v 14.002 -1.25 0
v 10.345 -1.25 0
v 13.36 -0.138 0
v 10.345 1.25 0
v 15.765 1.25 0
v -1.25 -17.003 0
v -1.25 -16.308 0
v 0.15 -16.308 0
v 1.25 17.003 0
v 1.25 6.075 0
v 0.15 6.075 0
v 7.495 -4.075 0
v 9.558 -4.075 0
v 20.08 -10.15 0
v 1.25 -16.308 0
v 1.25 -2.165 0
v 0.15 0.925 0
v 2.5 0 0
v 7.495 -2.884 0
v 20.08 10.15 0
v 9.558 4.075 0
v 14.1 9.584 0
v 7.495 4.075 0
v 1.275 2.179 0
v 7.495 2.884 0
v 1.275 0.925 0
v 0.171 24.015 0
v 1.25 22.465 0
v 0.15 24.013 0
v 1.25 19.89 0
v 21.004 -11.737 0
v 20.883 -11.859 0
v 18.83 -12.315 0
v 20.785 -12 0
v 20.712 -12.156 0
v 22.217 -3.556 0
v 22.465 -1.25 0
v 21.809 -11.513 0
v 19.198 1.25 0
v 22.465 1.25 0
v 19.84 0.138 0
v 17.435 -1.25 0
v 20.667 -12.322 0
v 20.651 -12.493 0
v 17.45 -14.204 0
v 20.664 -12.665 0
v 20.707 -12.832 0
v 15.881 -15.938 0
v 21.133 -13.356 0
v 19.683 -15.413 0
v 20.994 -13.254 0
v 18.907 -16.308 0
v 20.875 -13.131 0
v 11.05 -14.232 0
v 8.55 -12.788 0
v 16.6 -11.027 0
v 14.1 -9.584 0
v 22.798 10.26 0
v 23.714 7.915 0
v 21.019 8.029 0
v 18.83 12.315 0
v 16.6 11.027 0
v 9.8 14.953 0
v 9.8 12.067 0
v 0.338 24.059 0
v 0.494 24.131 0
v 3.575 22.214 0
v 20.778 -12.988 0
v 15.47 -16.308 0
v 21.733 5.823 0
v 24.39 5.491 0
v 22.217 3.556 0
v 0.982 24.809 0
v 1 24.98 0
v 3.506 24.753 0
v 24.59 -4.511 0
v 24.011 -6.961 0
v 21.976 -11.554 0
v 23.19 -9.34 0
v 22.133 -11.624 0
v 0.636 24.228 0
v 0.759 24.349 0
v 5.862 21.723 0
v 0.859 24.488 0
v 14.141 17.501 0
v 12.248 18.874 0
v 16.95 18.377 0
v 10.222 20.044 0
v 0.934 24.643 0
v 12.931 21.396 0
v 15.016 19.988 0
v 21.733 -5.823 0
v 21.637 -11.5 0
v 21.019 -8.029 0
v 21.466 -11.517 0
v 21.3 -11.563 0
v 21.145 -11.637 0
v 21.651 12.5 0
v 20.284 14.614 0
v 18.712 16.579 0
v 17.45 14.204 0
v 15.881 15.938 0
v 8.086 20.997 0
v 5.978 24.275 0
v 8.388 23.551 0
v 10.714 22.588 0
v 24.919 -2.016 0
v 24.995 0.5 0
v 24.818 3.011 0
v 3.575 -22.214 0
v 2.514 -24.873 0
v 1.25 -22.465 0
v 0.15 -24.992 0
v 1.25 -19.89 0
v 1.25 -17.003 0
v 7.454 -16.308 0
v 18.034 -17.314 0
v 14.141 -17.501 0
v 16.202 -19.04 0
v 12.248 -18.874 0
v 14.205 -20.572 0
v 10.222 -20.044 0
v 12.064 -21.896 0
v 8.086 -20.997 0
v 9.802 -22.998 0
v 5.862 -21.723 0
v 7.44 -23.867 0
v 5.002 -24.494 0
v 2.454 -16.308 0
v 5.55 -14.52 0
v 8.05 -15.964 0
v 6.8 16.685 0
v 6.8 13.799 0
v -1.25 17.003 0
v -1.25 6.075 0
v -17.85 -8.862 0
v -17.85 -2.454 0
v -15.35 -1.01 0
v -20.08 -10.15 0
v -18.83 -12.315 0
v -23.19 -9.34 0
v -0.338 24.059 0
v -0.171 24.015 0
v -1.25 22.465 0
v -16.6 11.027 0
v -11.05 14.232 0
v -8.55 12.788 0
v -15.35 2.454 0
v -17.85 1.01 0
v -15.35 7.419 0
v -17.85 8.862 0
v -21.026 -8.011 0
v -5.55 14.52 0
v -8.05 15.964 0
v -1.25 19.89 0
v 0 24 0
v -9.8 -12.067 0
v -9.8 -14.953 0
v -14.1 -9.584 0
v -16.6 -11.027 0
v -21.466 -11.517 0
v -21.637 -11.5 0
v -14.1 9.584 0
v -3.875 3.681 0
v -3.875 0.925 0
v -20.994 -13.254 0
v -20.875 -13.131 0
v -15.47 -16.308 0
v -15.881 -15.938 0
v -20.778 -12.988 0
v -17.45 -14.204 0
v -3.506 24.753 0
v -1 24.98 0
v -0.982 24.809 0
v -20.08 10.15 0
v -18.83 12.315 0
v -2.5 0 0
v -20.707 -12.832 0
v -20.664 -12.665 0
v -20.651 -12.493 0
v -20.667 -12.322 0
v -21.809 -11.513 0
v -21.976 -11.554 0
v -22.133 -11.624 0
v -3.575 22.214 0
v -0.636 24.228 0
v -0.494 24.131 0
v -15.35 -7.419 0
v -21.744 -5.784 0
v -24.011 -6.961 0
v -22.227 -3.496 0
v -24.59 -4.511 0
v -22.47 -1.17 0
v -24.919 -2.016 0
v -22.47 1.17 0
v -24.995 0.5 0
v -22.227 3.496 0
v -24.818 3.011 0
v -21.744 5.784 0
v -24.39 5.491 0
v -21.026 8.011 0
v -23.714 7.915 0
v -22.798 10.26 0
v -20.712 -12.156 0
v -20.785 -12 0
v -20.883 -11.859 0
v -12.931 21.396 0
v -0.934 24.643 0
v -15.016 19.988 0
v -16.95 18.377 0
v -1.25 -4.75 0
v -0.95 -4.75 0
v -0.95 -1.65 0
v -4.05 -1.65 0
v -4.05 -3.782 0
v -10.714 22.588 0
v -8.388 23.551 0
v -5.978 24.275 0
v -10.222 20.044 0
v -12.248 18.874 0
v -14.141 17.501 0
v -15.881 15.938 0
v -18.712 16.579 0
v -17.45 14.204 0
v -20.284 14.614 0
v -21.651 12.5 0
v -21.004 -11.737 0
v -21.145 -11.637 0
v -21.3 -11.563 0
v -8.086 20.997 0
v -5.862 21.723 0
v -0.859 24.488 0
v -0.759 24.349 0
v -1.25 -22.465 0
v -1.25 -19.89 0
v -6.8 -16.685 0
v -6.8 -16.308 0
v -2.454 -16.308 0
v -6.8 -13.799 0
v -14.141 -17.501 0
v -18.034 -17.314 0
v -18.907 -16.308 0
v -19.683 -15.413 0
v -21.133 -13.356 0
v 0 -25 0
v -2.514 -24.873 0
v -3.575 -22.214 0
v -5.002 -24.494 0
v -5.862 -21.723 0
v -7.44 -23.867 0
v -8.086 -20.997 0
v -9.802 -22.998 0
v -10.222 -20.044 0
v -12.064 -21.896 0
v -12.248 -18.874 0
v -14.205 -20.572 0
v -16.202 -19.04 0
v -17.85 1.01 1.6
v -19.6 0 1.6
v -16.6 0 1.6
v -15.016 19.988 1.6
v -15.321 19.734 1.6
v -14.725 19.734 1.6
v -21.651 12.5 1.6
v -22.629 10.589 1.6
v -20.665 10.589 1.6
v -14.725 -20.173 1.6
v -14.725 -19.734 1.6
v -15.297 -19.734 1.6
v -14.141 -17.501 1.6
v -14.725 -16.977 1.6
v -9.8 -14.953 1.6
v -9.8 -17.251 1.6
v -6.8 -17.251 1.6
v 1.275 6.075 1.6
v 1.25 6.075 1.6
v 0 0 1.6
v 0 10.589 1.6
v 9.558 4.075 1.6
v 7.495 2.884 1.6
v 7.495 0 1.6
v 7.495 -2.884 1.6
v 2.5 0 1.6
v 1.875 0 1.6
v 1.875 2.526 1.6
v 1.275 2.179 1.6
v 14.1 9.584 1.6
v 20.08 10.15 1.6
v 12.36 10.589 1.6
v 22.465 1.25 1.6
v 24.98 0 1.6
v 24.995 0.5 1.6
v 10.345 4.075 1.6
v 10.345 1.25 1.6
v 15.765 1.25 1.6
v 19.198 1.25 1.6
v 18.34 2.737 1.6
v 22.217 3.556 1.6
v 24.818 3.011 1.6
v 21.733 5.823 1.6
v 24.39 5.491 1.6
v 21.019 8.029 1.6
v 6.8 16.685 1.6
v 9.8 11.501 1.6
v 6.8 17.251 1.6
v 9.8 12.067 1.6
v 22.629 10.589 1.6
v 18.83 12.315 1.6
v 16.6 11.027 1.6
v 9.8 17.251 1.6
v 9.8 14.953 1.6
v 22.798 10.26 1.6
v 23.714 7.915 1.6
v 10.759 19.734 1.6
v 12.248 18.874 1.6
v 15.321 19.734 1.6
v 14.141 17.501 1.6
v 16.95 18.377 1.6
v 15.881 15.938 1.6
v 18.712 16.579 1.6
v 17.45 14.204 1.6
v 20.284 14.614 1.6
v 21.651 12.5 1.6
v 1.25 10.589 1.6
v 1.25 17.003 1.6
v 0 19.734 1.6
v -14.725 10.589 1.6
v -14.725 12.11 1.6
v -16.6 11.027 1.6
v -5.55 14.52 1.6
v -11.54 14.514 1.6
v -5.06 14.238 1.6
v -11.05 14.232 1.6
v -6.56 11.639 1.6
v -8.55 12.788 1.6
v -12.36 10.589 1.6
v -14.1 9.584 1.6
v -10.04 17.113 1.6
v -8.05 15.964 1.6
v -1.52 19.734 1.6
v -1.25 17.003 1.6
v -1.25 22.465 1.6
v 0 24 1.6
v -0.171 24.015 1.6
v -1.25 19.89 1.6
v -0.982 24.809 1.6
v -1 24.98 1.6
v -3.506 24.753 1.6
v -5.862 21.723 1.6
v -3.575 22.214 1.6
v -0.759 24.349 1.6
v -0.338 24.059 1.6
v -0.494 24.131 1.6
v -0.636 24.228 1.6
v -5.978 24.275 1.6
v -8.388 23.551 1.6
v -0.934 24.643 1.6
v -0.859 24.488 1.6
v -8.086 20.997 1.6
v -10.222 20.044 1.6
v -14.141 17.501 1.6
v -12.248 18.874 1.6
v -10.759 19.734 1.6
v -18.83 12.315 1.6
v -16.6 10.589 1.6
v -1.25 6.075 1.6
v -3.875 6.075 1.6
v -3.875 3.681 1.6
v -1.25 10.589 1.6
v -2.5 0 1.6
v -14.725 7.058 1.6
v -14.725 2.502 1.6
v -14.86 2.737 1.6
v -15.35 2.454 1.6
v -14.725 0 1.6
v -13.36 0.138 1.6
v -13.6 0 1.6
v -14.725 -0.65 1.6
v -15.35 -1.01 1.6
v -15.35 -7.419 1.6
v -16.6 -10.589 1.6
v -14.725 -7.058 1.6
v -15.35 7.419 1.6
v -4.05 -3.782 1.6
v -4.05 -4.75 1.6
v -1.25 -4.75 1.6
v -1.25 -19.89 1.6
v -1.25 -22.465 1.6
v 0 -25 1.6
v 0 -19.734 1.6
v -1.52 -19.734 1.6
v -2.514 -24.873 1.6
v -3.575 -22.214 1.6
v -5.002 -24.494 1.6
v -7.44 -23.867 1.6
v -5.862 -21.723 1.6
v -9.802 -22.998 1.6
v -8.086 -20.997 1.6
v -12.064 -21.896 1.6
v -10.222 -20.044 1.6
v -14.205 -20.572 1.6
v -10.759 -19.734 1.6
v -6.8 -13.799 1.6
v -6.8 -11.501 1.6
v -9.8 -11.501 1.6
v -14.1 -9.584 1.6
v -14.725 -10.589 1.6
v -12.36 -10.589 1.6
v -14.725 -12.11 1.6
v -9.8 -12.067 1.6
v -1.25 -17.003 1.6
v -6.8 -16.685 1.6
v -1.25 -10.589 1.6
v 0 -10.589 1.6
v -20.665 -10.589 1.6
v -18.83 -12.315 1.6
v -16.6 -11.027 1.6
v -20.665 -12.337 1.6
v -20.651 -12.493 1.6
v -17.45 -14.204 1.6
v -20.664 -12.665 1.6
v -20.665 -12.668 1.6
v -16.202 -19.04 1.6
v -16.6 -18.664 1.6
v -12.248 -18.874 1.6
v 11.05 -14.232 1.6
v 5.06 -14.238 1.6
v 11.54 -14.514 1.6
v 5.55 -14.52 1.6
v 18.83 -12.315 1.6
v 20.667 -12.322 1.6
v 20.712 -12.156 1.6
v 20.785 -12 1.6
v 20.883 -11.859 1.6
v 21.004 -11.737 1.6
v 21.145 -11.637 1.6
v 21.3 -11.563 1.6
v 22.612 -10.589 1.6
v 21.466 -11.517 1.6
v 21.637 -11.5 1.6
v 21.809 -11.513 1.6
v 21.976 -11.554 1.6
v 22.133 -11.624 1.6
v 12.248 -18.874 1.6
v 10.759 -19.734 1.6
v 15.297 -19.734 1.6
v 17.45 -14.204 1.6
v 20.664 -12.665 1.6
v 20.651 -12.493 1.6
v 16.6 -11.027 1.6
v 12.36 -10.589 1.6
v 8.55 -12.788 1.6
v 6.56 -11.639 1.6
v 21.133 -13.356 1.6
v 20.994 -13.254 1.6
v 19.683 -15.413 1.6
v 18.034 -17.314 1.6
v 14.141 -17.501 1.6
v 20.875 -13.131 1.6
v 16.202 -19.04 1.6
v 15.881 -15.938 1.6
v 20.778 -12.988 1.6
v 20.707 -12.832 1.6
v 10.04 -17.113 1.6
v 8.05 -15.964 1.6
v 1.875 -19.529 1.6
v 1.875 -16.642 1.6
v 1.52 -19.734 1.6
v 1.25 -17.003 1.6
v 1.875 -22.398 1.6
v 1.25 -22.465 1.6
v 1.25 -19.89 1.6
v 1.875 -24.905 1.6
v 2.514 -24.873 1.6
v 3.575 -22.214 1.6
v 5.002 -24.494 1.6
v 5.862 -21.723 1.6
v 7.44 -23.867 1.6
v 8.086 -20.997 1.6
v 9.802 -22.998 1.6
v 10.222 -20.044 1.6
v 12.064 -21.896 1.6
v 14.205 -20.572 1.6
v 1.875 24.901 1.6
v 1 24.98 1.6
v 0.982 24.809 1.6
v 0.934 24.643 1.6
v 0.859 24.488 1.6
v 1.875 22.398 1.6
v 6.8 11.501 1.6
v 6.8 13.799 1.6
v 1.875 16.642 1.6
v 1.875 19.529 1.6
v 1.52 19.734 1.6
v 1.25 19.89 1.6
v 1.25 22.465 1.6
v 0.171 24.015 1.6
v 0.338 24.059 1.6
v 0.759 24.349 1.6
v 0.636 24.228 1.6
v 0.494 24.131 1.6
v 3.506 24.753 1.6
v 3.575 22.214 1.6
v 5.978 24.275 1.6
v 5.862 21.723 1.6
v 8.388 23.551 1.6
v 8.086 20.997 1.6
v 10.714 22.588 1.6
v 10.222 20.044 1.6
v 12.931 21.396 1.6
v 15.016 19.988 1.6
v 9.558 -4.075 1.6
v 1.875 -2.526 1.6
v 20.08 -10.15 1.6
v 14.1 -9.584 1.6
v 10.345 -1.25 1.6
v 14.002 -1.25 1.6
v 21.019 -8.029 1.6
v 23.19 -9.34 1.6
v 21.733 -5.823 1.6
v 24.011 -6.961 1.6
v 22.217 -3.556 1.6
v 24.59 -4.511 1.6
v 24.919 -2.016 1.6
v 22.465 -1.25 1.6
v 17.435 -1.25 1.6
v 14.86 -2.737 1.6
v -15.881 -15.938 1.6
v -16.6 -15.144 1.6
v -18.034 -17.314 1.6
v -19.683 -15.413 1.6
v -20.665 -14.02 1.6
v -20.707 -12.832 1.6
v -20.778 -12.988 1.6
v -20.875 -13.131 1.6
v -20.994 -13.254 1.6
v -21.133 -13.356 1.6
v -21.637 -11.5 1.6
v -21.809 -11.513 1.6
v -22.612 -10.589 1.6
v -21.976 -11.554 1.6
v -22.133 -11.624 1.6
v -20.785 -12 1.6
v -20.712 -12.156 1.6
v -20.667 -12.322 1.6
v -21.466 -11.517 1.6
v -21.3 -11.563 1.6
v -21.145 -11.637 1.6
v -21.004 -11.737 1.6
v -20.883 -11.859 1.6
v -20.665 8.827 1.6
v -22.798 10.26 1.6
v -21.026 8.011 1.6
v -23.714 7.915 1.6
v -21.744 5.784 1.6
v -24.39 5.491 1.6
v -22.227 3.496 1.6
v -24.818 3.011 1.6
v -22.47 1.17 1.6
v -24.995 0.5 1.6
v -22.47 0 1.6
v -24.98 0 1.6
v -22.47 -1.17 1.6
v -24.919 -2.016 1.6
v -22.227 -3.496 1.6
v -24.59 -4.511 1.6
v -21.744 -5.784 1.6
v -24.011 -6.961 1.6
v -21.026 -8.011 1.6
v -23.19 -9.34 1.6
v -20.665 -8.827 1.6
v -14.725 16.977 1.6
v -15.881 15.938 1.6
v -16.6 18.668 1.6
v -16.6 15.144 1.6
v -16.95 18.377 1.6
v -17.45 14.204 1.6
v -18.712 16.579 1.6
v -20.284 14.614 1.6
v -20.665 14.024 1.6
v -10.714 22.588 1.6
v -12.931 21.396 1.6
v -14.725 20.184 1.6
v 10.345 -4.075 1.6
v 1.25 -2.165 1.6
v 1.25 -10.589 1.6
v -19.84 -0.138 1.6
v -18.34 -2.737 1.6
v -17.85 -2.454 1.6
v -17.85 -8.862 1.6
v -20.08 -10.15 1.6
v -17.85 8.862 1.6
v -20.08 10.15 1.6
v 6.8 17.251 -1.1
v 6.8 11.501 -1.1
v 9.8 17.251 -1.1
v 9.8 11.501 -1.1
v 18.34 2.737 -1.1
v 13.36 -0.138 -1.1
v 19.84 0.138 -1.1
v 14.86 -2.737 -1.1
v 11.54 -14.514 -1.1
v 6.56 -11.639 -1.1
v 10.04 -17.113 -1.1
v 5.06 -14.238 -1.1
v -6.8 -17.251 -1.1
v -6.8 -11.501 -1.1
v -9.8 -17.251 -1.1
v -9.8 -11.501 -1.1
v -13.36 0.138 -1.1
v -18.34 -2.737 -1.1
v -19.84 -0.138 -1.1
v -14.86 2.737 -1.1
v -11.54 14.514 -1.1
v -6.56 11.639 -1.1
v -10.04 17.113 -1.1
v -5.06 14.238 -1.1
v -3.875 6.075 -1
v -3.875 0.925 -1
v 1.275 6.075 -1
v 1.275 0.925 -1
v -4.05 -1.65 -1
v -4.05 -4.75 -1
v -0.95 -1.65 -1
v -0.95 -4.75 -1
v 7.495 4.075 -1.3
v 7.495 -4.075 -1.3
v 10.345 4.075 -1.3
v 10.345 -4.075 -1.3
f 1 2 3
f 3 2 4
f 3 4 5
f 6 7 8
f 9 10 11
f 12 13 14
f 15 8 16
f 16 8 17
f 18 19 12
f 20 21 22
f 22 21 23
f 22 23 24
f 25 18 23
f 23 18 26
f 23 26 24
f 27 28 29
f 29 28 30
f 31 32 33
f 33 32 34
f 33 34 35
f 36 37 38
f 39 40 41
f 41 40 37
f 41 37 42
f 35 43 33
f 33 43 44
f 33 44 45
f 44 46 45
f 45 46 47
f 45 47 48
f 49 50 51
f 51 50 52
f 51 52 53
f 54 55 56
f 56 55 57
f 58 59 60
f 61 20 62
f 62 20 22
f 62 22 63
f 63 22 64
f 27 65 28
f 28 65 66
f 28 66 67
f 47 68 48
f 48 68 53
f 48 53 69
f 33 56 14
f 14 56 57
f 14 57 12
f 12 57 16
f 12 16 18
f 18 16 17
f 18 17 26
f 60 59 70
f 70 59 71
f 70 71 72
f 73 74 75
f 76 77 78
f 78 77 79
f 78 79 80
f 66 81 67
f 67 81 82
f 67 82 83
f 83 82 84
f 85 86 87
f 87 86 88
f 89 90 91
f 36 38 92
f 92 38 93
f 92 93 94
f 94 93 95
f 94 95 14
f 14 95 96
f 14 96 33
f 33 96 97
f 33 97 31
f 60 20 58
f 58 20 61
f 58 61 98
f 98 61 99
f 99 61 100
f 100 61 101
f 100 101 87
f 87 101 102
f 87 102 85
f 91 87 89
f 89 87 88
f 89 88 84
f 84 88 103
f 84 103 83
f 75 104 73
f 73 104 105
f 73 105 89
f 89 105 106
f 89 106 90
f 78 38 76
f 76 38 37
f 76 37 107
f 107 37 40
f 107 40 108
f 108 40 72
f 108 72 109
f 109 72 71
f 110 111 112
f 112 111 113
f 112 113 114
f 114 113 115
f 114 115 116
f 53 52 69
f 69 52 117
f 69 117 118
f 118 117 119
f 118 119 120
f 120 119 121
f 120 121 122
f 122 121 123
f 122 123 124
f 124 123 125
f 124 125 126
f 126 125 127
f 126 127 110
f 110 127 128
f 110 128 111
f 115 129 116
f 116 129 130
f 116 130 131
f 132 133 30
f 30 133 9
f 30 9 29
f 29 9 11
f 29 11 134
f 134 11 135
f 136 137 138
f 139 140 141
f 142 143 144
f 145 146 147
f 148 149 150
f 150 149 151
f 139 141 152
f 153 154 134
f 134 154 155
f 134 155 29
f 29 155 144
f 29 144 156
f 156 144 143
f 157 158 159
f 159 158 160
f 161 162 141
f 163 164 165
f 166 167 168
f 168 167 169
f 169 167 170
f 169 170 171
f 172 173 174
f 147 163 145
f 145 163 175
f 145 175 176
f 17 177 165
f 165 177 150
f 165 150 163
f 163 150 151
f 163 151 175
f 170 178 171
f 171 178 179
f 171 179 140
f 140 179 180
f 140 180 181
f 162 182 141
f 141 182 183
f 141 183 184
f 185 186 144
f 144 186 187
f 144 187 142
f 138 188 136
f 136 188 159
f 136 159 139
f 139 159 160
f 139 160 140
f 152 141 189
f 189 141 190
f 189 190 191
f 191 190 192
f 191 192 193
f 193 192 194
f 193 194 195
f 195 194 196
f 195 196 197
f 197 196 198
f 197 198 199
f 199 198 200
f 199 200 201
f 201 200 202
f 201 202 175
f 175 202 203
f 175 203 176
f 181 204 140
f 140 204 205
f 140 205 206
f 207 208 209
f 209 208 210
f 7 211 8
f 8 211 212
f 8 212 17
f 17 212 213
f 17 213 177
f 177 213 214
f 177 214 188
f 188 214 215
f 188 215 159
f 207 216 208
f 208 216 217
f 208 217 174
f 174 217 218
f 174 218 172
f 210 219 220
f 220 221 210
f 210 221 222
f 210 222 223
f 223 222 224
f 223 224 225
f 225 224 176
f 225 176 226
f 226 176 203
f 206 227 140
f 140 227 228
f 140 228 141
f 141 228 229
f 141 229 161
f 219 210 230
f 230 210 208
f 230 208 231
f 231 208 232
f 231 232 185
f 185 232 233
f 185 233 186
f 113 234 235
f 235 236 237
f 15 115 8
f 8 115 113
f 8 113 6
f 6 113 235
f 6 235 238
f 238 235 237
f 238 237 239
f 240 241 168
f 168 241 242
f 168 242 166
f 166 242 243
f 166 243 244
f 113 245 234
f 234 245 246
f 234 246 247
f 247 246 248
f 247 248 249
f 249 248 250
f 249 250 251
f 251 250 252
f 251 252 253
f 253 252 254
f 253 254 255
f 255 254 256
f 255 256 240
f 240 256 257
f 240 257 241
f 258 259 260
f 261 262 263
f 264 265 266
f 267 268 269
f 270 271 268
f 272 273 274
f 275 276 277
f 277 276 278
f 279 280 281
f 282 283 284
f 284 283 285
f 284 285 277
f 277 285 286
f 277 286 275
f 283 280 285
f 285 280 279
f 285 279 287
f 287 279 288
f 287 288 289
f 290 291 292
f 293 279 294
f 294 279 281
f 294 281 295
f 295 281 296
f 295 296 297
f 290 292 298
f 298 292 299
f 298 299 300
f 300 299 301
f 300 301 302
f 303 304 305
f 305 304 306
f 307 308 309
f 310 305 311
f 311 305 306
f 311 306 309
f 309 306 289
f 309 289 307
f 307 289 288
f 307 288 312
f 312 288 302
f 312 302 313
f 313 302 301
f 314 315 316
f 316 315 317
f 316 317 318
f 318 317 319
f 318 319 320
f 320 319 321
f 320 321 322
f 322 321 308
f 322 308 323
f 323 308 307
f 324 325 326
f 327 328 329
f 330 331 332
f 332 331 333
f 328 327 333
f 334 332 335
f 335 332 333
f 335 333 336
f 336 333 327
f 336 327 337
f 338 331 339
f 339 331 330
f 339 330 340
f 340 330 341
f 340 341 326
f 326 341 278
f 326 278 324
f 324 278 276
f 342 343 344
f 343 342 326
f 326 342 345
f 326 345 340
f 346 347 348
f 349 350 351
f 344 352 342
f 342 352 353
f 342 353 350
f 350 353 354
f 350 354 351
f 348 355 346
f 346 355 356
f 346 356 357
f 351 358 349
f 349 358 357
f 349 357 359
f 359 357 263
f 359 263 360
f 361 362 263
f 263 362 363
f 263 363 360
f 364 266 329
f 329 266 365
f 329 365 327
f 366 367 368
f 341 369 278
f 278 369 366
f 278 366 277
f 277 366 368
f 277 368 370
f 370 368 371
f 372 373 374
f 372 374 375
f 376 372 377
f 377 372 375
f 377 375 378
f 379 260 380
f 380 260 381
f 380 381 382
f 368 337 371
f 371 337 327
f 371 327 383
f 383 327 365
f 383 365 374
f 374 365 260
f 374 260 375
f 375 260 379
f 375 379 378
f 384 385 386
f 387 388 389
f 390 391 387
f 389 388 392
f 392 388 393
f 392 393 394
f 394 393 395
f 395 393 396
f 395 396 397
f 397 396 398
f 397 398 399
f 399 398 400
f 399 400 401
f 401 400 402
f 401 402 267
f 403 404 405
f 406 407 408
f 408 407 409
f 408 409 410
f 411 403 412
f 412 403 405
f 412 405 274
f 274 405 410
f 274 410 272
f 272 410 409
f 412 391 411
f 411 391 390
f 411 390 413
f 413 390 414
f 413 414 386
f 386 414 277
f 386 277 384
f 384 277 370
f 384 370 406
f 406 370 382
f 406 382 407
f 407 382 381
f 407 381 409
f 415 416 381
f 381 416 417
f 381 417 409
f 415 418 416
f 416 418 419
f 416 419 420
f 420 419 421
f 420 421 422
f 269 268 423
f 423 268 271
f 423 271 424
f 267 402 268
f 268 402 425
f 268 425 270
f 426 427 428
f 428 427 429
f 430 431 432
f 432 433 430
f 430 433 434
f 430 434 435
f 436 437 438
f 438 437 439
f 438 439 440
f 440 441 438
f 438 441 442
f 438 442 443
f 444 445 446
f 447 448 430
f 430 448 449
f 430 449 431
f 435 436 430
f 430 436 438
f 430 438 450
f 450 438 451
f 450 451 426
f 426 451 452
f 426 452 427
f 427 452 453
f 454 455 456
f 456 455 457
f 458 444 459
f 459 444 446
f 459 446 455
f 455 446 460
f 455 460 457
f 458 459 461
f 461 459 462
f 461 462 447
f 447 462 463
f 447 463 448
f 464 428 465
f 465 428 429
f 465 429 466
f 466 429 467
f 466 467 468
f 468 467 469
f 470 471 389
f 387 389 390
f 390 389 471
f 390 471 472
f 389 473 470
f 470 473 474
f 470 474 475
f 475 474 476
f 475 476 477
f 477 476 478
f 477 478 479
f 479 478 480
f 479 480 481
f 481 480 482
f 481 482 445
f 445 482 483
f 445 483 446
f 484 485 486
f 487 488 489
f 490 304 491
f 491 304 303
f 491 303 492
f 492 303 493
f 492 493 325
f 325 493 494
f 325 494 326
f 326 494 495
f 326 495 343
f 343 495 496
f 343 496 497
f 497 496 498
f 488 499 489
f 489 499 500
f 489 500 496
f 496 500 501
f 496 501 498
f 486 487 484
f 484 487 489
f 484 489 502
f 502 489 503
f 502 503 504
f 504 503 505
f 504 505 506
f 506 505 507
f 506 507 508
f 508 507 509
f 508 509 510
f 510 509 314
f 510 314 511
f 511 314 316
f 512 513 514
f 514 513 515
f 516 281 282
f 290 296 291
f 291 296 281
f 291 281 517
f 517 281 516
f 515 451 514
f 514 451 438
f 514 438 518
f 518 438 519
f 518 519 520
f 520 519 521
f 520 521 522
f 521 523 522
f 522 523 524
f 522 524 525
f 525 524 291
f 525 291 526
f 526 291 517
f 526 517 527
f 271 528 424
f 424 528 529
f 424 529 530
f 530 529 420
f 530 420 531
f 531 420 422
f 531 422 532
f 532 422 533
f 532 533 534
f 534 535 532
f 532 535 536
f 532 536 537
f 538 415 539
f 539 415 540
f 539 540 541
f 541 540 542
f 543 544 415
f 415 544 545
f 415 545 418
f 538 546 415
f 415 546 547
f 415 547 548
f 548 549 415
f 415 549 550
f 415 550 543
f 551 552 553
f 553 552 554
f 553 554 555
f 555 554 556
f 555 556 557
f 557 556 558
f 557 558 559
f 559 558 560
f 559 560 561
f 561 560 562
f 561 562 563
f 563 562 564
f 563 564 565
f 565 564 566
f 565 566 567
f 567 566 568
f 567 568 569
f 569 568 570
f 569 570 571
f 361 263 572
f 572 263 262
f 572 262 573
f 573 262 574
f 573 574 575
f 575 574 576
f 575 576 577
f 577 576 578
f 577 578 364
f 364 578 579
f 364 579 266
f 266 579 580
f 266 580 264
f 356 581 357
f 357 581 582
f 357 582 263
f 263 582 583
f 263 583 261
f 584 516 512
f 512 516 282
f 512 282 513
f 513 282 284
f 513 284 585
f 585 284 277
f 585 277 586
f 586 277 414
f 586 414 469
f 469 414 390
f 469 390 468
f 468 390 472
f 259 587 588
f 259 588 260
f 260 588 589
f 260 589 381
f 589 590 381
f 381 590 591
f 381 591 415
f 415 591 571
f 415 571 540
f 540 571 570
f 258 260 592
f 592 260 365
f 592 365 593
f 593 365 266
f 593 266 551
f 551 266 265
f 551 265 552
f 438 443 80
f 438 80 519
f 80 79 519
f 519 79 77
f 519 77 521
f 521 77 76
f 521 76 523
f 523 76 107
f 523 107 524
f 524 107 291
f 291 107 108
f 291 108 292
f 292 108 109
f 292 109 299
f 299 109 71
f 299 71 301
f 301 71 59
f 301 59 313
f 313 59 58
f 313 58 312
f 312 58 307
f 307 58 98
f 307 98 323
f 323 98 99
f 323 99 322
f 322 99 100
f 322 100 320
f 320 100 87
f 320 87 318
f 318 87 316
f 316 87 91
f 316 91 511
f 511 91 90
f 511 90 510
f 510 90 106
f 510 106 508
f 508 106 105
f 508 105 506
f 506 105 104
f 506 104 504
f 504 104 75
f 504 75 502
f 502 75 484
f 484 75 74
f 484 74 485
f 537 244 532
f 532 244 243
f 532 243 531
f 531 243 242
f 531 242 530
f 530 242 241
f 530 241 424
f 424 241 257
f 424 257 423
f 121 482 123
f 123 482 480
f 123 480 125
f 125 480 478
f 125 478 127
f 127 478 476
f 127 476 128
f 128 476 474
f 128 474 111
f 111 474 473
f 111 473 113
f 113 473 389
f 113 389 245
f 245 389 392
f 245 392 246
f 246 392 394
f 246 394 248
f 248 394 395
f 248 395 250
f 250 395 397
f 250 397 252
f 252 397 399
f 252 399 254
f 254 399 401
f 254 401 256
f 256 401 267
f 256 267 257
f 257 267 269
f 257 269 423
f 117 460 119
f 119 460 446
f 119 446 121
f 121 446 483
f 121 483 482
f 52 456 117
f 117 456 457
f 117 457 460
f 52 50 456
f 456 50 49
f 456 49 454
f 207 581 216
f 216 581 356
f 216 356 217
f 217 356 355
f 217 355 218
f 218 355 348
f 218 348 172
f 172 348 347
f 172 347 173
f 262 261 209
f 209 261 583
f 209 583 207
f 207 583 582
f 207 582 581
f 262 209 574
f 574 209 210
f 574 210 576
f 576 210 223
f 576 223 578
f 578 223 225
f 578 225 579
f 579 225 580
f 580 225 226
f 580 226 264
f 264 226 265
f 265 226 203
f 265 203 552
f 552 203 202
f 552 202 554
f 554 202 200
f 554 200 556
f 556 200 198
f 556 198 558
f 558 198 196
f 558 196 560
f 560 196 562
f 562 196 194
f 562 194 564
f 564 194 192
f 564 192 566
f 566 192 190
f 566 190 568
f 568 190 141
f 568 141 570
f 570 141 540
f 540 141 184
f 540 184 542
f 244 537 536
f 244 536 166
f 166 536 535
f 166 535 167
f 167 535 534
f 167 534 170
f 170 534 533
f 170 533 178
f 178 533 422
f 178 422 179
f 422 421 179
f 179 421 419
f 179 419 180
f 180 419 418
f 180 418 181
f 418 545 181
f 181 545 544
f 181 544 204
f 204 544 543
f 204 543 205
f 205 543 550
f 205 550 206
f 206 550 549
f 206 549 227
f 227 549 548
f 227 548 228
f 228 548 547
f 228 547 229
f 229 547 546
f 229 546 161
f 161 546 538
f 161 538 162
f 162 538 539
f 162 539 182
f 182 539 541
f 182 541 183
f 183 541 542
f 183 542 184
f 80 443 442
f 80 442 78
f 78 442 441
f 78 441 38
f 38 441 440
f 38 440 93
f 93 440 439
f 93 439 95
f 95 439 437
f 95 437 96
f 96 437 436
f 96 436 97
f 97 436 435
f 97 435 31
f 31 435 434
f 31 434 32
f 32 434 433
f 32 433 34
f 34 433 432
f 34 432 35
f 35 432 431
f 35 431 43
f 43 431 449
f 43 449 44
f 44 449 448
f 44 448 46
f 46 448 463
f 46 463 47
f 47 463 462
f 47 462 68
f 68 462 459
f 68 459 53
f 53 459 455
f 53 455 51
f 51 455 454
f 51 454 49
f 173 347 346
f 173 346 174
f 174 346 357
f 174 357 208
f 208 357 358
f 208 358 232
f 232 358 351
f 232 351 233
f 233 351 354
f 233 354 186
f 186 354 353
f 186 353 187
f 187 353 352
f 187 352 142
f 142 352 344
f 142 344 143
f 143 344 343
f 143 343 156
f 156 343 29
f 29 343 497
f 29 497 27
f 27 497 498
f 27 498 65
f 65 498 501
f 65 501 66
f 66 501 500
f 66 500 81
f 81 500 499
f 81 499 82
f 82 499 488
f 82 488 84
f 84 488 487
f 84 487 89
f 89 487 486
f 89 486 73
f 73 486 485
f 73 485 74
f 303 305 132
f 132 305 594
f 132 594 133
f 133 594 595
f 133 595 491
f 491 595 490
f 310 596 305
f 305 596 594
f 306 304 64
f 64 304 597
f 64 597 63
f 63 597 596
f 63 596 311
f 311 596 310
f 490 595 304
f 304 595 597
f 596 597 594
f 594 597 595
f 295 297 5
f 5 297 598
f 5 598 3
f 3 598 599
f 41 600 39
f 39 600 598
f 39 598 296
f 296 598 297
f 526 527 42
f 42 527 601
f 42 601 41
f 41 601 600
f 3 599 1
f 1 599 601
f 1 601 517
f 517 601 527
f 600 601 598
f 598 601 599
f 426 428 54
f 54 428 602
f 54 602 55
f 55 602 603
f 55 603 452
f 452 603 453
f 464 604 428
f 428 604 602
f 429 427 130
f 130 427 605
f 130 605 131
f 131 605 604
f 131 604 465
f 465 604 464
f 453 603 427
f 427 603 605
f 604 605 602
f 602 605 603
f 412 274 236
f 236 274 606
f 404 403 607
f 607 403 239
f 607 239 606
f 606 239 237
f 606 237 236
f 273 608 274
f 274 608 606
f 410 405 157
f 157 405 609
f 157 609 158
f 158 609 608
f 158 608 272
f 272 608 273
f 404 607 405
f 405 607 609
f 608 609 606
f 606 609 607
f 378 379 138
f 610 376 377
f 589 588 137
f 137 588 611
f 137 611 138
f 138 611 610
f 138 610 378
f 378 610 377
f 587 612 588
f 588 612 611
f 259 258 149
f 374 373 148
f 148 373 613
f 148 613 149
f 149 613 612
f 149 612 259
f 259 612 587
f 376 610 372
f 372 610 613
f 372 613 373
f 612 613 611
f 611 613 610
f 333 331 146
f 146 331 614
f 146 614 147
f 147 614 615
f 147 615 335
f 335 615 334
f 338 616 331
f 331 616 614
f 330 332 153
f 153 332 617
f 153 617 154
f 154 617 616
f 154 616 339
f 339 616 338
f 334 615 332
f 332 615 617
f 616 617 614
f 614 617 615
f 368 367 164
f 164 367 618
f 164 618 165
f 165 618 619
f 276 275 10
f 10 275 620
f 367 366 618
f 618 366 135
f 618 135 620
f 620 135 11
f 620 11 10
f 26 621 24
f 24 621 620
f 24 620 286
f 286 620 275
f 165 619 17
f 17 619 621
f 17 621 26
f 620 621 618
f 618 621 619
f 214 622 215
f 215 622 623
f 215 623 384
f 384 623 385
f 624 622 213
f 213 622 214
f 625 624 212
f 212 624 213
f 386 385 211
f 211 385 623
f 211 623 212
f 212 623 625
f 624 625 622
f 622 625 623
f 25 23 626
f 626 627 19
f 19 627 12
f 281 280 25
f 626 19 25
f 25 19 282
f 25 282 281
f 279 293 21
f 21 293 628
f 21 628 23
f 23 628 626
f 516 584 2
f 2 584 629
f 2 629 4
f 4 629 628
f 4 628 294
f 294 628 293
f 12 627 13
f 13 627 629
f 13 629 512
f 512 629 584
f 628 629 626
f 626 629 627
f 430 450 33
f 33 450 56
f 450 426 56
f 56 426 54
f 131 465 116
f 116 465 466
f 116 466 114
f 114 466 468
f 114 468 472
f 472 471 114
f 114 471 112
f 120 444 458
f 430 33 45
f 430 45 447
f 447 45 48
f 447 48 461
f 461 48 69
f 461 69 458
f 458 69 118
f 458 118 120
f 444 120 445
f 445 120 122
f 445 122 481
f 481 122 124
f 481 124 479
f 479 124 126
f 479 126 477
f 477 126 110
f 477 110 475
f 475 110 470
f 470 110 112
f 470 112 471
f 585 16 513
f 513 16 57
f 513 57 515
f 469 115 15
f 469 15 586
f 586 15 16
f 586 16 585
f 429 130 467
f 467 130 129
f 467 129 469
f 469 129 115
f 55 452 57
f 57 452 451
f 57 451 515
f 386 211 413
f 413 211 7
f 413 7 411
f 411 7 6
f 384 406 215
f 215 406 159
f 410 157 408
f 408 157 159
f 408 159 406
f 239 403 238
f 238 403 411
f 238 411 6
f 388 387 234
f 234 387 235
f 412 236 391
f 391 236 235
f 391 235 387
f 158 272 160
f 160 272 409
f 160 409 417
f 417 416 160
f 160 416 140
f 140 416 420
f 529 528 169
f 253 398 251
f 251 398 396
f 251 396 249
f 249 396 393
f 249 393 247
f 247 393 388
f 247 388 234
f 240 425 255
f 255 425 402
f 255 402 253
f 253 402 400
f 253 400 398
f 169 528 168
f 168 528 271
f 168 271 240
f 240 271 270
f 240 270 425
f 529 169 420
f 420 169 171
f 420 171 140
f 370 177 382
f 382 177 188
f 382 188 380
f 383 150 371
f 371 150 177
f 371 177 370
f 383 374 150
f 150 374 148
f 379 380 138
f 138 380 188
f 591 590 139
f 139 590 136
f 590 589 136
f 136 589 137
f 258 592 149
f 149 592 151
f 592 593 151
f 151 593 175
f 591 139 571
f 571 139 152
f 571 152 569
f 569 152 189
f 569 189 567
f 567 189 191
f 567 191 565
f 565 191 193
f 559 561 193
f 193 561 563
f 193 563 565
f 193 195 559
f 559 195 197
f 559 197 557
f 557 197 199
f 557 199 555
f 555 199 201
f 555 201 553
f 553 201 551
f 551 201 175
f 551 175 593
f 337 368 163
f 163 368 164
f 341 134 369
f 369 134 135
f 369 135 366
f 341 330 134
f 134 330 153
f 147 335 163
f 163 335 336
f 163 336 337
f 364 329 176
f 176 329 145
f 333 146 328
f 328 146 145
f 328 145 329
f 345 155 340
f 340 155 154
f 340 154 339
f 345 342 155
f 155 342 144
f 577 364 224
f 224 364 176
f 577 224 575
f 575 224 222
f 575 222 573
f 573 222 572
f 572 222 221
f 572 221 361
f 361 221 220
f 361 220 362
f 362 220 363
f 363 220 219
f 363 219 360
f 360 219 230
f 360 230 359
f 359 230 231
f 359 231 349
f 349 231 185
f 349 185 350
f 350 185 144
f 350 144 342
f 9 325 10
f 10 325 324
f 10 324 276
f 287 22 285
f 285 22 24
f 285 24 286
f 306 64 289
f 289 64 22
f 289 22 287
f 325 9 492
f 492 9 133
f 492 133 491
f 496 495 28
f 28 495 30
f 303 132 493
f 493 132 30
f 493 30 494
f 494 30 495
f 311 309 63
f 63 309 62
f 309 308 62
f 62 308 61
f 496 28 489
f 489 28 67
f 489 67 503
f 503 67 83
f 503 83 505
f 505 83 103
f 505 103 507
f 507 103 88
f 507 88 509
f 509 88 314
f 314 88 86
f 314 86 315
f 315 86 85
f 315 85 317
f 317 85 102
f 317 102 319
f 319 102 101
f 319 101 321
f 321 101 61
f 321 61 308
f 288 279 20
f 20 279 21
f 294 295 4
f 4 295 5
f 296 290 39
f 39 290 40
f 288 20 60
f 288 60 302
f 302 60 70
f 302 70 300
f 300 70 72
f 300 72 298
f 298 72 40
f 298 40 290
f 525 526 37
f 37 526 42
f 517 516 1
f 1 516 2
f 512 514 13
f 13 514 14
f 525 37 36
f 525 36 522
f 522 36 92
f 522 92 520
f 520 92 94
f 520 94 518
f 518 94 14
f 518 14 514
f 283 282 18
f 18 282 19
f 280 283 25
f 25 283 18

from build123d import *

# Parameters (mm, degrees)
BASE_SKETCH_R        = 25
BOARD_DEPTH          = 1.6
ALIGNMENT_SLOTS_D    = 2
EXTRUSION_BASE_W     = 3
EXTRUSION_BASE_H     = 5.75
LEDS_DEPTH           = 1.1
EXTRUSION_BASE_3_W   = 5.15
EXTRUSION_BASE_3_H   = 5.15
EXTRUSION_BASE_3_W_2 = 3.1
EXTRUSION_BASE_3_H_2 = 3.1
ICS_DEPTH            = 1
EXTRUSION_BASE_4_W   = 2.85
EXTRUSION_BASE_4_H   = 8.15
CONNECTOR_DEPTH      = 1.3
EXTRA_MASS_CUT_DEPTH = 36.391524409


with BuildPart() as part:
    # Base sketch → Board (new body)
    with BuildSketch(Plane.XY):
        Circle(BASE_SKETCH_R)
    extrude(amount=BOARD_DEPTH)

    # Alignment slots (through all)
    with Locations(Plane.XY.offset(1.6)):
        with Locations((0, 25), (21.650635095, -12.5), (-21.650635095, -12.5)):
            Hole(ALIGNMENT_SLOTS_D / 2)

    # Extrusion base → LEDs (add)
    with BuildSketch(Plane(origin=(0, 0, 0), x_dir=(-1, 0, 0), z_dir=(0, 0, -1))):
        Polygon((11.539823036, 14.514483597), (10.039823036, 17.112559808), (5.060176964, 14.237559808), (6.560176964, 11.639483597), align=None)
        with Locations((-8.3, 14.376021703)):
            Rectangle(EXTRUSION_BASE_W, EXTRUSION_BASE_H)
        Polygon((18.339823036, -2.736538106), (19.839823036, -0.138461894), (14.860176964, 2.736538106), (13.360176964, 0.138461894), align=None)
        with Locations((8.3, -14.376021703)):
            Rectangle(EXTRUSION_BASE_W, EXTRUSION_BASE_H)
        Polygon((-11.539823036, -14.514483597), (-10.039823036, -17.112559808), (-5.060176964, -14.237559808), (-6.560176964, -11.639483597), align=None)
        Polygon((-18.339823036, 2.736538106), (-19.839823036, 0.138461894), (-14.860176964, -2.736538106), (-13.360176964, -0.138461894), align=None)
    extrude(amount=LEDS_DEPTH)

    # Extrusion base<3> → ICs (add)
    with BuildSketch(Plane(origin=(0, 0, 0), x_dir=(-1, 0, 0), z_dir=(0, 0, -1))):
        with Locations((1.3, 3.5)):
            Rectangle(EXTRUSION_BASE_3_W, EXTRUSION_BASE_3_H)
        with Locations((2.5, -3.2)):
            Rectangle(EXTRUSION_BASE_3_W_2, EXTRUSION_BASE_3_H_2)
    extrude(amount=ICS_DEPTH)

    # Extrusion base<4> → Connector (add)
    with BuildSketch(Plane(origin=(0, 0, 0), x_dir=(-1, 0, 0), z_dir=(0, 0, -1))):
        with Locations((-8.92, 0)):
            Rectangle(EXTRUSION_BASE_4_W, EXTRUSION_BASE_4_H)
    extrude(amount=CONNECTOR_DEPTH)

    # Negative base → Extra mass cut (cut, through all)
    with BuildSketch(Plane(origin=(0, 0, 0), x_dir=(-1, 0, 0), z_dir=(0, 0, -1))):
        Polygon((3.875, 3.680607966), (14.1, 9.584014469), (8.55, 12.788308463), (6.560176964, 11.639483597), (5.060176964, 14.237559808), (5.55, 14.52035927), (1.25, 17.002965428), (1.25, 6.075), (3.875, 6.075), align=None)
        with BuildLine():
            Line((11.05, 14.231684136), (16.6, 11.027390142))
            Line((16.6, 11.027390142), (18.83047802, 12.315157227))
            ThreePointArc((18.83047802, 12.315157227), (11.25, 19.485571585), (1.25, 22.465250945))
            Line((1.25, 22.465250945), (1.25, 19.889716774))
            Line((1.25, 19.889716774), (8.05, 15.963734943))
            Line((8.05, 15.963734943), (10.039823036, 17.112559808))
            Line((10.039823036, 17.112559808), (11.539823036, 14.514483597))
            Line((11.539823036, 14.514483597), (11.05, 14.231684136))
        make_face()
        with BuildLine():
            ThreePointArc((20.08047802, -10.150093718), (22.5, 0), (20.08047802, 10.150093718))
            Line((20.08047802, 10.150093718), (17.85, 8.862326632))
            Line((17.85, 8.862326632), (17.85, 1.010362971))
            Line((17.85, 1.010362971), (19.839823036, -0.138461894))
            Line((19.839823036, -0.138461894), (18.339823036, -2.736538106))
            Line((18.339823036, -2.736538106), (17.85, -2.453738644))
            Line((17.85, -2.453738644), (17.85, -8.862326632))
            Line((17.85, -8.862326632), (20.08047802, -10.150093718))
        make_face()
        with BuildLine():
            Line((-1.25, 19.889716774), (-1.25, 22.465250945))
            ThreePointArc((-1.25, 22.465250945), (-11.25, 19.485571585), (-18.83047802, 12.315157227))
            Line((-18.83047802, 12.315157227), (-16.6, 11.027390142))
            Line((-16.6, 11.027390142), (-9.8, 14.953371972))
            Line((-9.8, 14.953371972), (-9.8, 17.251021703))
            Line((-9.8, 17.251021703), (-6.8, 17.251021703))
            Line((-6.8, 17.251021703), (-6.8, 16.68542278))
            Line((-6.8, 16.68542278), (-1.25, 19.889716774))
        make_face()
        Polygon((-1.275, 6.075), (-1.25, 6.075), (-1.25, 17.002965428), (-6.8, 13.798671434), (-6.8, 11.501021703), (-9.8, 11.501021703), (-9.8, 12.066620626), (-14.1, 9.584014469), (-1.275, 2.179497266), align=None)
        Polygon((15.35, 2.453738644), (15.35, 7.418950959), (2.5, 0), (15.35, -7.418950959), (15.35, -1.010362971), (13.360176964, 0.138461894), (14.860176964, 2.736538106), align=None)
        with BuildLine():
            ThreePointArc((1.25, -22.465250945), (11.25, -19.485571585), (18.83047802, -12.315157227))
            Line((18.83047802, -12.315157227), (16.6, -11.027390142))
            Line((16.6, -11.027390142), (9.8, -14.953371972))
            Line((9.8, -14.953371972), (9.8, -17.251021703))
            Line((9.8, -17.251021703), (6.8, -17.251021703))
            Line((6.8, -17.251021703), (6.8, -16.68542278))
            Line((6.8, -16.68542278), (1.25, -19.889716774))
            Line((1.25, -19.889716774), (1.25, -22.465250945))
        make_face()
        with BuildLine():
            Line((-9.558107041, 4.075), (-20.08047802, 10.150093718))
            ThreePointArc((-20.08047802, 10.150093718), (-21.733331092, 5.823428515), (-22.465250945, 1.25))
            Line((-22.465250945, 1.25), (-19.198076211, 1.25))
            Line((-19.198076211, 1.25), (-18.339823036, 2.736538106))
            Line((-18.339823036, 2.736538106), (-15.765063509, 1.25))
            Line((-15.765063509, 1.25), (-10.345, 1.25))
            Line((-10.345, 1.25), (-10.345, 4.075))
            Line((-10.345, 4.075), (-9.558107041, 4.075))
        make_face()
        Polygon((-7.495, -2.883864595), (-2.5, 0), (-7.495, 2.883864595), align=None)
        Polygon((-1.25, -17.002965428), (-1.25, -2.165063509), (-14.1, -9.584014469), (-8.55, -12.788308463), (-6.560176964, -11.639483597), (-5.060176964, -14.237559808), (-5.55, -14.52035927), align=None)
        Polygon((9.8, -12.066620626), (14.1, -9.584014469), (4.05, -3.781644263), (4.05, -4.75), (1.25, -4.75), (1.25, -17.002965428), (6.8, -13.798671434), (6.8, -11.501021703), (9.8, -11.501021703), align=None)
        with BuildLine():
            ThreePointArc((-18.83047802, -12.315157227), (-11.25, -19.485571585), (-1.25, -22.465250945))
            Line((-1.25, -22.465250945), (-1.25, -19.889716774))
            Line((-1.25, -19.889716774), (-8.05, -15.963734943))
            Line((-8.05, -15.963734943), (-10.039823036, -17.112559808))
            Line((-10.039823036, -17.112559808), (-11.539823036, -14.514483597))
            Line((-11.539823036, -14.514483597), (-11.05, -14.231684136))
            Line((-11.05, -14.231684136), (-16.6, -11.027390142))
            Line((-16.6, -11.027390142), (-18.83047802, -12.315157227))
        make_face()
        with BuildLine():
            Line((-17.434936491, -1.25), (-22.465250945, -1.25))
            ThreePointArc((-22.465250945, -1.25), (-21.733331092, -5.823428515), (-20.08047802, -10.150093718))
            Line((-20.08047802, -10.150093718), (-9.558107041, -4.075))
            Line((-9.558107041, -4.075), (-10.345, -4.075))
            Line((-10.345, -4.075), (-10.345, -1.25))
            Line((-10.345, -1.25), (-14.001923789, -1.25))
            Line((-14.001923789, -1.25), (-14.860176964, -2.736538106))
            Line((-14.860176964, -2.736538106), (-17.434936491, -1.25))
        make_face()
    extrude(amount=-EXTRA_MASS_CUT_DEPTH, mode=Mode.SUBTRACT)


solid = part.part
